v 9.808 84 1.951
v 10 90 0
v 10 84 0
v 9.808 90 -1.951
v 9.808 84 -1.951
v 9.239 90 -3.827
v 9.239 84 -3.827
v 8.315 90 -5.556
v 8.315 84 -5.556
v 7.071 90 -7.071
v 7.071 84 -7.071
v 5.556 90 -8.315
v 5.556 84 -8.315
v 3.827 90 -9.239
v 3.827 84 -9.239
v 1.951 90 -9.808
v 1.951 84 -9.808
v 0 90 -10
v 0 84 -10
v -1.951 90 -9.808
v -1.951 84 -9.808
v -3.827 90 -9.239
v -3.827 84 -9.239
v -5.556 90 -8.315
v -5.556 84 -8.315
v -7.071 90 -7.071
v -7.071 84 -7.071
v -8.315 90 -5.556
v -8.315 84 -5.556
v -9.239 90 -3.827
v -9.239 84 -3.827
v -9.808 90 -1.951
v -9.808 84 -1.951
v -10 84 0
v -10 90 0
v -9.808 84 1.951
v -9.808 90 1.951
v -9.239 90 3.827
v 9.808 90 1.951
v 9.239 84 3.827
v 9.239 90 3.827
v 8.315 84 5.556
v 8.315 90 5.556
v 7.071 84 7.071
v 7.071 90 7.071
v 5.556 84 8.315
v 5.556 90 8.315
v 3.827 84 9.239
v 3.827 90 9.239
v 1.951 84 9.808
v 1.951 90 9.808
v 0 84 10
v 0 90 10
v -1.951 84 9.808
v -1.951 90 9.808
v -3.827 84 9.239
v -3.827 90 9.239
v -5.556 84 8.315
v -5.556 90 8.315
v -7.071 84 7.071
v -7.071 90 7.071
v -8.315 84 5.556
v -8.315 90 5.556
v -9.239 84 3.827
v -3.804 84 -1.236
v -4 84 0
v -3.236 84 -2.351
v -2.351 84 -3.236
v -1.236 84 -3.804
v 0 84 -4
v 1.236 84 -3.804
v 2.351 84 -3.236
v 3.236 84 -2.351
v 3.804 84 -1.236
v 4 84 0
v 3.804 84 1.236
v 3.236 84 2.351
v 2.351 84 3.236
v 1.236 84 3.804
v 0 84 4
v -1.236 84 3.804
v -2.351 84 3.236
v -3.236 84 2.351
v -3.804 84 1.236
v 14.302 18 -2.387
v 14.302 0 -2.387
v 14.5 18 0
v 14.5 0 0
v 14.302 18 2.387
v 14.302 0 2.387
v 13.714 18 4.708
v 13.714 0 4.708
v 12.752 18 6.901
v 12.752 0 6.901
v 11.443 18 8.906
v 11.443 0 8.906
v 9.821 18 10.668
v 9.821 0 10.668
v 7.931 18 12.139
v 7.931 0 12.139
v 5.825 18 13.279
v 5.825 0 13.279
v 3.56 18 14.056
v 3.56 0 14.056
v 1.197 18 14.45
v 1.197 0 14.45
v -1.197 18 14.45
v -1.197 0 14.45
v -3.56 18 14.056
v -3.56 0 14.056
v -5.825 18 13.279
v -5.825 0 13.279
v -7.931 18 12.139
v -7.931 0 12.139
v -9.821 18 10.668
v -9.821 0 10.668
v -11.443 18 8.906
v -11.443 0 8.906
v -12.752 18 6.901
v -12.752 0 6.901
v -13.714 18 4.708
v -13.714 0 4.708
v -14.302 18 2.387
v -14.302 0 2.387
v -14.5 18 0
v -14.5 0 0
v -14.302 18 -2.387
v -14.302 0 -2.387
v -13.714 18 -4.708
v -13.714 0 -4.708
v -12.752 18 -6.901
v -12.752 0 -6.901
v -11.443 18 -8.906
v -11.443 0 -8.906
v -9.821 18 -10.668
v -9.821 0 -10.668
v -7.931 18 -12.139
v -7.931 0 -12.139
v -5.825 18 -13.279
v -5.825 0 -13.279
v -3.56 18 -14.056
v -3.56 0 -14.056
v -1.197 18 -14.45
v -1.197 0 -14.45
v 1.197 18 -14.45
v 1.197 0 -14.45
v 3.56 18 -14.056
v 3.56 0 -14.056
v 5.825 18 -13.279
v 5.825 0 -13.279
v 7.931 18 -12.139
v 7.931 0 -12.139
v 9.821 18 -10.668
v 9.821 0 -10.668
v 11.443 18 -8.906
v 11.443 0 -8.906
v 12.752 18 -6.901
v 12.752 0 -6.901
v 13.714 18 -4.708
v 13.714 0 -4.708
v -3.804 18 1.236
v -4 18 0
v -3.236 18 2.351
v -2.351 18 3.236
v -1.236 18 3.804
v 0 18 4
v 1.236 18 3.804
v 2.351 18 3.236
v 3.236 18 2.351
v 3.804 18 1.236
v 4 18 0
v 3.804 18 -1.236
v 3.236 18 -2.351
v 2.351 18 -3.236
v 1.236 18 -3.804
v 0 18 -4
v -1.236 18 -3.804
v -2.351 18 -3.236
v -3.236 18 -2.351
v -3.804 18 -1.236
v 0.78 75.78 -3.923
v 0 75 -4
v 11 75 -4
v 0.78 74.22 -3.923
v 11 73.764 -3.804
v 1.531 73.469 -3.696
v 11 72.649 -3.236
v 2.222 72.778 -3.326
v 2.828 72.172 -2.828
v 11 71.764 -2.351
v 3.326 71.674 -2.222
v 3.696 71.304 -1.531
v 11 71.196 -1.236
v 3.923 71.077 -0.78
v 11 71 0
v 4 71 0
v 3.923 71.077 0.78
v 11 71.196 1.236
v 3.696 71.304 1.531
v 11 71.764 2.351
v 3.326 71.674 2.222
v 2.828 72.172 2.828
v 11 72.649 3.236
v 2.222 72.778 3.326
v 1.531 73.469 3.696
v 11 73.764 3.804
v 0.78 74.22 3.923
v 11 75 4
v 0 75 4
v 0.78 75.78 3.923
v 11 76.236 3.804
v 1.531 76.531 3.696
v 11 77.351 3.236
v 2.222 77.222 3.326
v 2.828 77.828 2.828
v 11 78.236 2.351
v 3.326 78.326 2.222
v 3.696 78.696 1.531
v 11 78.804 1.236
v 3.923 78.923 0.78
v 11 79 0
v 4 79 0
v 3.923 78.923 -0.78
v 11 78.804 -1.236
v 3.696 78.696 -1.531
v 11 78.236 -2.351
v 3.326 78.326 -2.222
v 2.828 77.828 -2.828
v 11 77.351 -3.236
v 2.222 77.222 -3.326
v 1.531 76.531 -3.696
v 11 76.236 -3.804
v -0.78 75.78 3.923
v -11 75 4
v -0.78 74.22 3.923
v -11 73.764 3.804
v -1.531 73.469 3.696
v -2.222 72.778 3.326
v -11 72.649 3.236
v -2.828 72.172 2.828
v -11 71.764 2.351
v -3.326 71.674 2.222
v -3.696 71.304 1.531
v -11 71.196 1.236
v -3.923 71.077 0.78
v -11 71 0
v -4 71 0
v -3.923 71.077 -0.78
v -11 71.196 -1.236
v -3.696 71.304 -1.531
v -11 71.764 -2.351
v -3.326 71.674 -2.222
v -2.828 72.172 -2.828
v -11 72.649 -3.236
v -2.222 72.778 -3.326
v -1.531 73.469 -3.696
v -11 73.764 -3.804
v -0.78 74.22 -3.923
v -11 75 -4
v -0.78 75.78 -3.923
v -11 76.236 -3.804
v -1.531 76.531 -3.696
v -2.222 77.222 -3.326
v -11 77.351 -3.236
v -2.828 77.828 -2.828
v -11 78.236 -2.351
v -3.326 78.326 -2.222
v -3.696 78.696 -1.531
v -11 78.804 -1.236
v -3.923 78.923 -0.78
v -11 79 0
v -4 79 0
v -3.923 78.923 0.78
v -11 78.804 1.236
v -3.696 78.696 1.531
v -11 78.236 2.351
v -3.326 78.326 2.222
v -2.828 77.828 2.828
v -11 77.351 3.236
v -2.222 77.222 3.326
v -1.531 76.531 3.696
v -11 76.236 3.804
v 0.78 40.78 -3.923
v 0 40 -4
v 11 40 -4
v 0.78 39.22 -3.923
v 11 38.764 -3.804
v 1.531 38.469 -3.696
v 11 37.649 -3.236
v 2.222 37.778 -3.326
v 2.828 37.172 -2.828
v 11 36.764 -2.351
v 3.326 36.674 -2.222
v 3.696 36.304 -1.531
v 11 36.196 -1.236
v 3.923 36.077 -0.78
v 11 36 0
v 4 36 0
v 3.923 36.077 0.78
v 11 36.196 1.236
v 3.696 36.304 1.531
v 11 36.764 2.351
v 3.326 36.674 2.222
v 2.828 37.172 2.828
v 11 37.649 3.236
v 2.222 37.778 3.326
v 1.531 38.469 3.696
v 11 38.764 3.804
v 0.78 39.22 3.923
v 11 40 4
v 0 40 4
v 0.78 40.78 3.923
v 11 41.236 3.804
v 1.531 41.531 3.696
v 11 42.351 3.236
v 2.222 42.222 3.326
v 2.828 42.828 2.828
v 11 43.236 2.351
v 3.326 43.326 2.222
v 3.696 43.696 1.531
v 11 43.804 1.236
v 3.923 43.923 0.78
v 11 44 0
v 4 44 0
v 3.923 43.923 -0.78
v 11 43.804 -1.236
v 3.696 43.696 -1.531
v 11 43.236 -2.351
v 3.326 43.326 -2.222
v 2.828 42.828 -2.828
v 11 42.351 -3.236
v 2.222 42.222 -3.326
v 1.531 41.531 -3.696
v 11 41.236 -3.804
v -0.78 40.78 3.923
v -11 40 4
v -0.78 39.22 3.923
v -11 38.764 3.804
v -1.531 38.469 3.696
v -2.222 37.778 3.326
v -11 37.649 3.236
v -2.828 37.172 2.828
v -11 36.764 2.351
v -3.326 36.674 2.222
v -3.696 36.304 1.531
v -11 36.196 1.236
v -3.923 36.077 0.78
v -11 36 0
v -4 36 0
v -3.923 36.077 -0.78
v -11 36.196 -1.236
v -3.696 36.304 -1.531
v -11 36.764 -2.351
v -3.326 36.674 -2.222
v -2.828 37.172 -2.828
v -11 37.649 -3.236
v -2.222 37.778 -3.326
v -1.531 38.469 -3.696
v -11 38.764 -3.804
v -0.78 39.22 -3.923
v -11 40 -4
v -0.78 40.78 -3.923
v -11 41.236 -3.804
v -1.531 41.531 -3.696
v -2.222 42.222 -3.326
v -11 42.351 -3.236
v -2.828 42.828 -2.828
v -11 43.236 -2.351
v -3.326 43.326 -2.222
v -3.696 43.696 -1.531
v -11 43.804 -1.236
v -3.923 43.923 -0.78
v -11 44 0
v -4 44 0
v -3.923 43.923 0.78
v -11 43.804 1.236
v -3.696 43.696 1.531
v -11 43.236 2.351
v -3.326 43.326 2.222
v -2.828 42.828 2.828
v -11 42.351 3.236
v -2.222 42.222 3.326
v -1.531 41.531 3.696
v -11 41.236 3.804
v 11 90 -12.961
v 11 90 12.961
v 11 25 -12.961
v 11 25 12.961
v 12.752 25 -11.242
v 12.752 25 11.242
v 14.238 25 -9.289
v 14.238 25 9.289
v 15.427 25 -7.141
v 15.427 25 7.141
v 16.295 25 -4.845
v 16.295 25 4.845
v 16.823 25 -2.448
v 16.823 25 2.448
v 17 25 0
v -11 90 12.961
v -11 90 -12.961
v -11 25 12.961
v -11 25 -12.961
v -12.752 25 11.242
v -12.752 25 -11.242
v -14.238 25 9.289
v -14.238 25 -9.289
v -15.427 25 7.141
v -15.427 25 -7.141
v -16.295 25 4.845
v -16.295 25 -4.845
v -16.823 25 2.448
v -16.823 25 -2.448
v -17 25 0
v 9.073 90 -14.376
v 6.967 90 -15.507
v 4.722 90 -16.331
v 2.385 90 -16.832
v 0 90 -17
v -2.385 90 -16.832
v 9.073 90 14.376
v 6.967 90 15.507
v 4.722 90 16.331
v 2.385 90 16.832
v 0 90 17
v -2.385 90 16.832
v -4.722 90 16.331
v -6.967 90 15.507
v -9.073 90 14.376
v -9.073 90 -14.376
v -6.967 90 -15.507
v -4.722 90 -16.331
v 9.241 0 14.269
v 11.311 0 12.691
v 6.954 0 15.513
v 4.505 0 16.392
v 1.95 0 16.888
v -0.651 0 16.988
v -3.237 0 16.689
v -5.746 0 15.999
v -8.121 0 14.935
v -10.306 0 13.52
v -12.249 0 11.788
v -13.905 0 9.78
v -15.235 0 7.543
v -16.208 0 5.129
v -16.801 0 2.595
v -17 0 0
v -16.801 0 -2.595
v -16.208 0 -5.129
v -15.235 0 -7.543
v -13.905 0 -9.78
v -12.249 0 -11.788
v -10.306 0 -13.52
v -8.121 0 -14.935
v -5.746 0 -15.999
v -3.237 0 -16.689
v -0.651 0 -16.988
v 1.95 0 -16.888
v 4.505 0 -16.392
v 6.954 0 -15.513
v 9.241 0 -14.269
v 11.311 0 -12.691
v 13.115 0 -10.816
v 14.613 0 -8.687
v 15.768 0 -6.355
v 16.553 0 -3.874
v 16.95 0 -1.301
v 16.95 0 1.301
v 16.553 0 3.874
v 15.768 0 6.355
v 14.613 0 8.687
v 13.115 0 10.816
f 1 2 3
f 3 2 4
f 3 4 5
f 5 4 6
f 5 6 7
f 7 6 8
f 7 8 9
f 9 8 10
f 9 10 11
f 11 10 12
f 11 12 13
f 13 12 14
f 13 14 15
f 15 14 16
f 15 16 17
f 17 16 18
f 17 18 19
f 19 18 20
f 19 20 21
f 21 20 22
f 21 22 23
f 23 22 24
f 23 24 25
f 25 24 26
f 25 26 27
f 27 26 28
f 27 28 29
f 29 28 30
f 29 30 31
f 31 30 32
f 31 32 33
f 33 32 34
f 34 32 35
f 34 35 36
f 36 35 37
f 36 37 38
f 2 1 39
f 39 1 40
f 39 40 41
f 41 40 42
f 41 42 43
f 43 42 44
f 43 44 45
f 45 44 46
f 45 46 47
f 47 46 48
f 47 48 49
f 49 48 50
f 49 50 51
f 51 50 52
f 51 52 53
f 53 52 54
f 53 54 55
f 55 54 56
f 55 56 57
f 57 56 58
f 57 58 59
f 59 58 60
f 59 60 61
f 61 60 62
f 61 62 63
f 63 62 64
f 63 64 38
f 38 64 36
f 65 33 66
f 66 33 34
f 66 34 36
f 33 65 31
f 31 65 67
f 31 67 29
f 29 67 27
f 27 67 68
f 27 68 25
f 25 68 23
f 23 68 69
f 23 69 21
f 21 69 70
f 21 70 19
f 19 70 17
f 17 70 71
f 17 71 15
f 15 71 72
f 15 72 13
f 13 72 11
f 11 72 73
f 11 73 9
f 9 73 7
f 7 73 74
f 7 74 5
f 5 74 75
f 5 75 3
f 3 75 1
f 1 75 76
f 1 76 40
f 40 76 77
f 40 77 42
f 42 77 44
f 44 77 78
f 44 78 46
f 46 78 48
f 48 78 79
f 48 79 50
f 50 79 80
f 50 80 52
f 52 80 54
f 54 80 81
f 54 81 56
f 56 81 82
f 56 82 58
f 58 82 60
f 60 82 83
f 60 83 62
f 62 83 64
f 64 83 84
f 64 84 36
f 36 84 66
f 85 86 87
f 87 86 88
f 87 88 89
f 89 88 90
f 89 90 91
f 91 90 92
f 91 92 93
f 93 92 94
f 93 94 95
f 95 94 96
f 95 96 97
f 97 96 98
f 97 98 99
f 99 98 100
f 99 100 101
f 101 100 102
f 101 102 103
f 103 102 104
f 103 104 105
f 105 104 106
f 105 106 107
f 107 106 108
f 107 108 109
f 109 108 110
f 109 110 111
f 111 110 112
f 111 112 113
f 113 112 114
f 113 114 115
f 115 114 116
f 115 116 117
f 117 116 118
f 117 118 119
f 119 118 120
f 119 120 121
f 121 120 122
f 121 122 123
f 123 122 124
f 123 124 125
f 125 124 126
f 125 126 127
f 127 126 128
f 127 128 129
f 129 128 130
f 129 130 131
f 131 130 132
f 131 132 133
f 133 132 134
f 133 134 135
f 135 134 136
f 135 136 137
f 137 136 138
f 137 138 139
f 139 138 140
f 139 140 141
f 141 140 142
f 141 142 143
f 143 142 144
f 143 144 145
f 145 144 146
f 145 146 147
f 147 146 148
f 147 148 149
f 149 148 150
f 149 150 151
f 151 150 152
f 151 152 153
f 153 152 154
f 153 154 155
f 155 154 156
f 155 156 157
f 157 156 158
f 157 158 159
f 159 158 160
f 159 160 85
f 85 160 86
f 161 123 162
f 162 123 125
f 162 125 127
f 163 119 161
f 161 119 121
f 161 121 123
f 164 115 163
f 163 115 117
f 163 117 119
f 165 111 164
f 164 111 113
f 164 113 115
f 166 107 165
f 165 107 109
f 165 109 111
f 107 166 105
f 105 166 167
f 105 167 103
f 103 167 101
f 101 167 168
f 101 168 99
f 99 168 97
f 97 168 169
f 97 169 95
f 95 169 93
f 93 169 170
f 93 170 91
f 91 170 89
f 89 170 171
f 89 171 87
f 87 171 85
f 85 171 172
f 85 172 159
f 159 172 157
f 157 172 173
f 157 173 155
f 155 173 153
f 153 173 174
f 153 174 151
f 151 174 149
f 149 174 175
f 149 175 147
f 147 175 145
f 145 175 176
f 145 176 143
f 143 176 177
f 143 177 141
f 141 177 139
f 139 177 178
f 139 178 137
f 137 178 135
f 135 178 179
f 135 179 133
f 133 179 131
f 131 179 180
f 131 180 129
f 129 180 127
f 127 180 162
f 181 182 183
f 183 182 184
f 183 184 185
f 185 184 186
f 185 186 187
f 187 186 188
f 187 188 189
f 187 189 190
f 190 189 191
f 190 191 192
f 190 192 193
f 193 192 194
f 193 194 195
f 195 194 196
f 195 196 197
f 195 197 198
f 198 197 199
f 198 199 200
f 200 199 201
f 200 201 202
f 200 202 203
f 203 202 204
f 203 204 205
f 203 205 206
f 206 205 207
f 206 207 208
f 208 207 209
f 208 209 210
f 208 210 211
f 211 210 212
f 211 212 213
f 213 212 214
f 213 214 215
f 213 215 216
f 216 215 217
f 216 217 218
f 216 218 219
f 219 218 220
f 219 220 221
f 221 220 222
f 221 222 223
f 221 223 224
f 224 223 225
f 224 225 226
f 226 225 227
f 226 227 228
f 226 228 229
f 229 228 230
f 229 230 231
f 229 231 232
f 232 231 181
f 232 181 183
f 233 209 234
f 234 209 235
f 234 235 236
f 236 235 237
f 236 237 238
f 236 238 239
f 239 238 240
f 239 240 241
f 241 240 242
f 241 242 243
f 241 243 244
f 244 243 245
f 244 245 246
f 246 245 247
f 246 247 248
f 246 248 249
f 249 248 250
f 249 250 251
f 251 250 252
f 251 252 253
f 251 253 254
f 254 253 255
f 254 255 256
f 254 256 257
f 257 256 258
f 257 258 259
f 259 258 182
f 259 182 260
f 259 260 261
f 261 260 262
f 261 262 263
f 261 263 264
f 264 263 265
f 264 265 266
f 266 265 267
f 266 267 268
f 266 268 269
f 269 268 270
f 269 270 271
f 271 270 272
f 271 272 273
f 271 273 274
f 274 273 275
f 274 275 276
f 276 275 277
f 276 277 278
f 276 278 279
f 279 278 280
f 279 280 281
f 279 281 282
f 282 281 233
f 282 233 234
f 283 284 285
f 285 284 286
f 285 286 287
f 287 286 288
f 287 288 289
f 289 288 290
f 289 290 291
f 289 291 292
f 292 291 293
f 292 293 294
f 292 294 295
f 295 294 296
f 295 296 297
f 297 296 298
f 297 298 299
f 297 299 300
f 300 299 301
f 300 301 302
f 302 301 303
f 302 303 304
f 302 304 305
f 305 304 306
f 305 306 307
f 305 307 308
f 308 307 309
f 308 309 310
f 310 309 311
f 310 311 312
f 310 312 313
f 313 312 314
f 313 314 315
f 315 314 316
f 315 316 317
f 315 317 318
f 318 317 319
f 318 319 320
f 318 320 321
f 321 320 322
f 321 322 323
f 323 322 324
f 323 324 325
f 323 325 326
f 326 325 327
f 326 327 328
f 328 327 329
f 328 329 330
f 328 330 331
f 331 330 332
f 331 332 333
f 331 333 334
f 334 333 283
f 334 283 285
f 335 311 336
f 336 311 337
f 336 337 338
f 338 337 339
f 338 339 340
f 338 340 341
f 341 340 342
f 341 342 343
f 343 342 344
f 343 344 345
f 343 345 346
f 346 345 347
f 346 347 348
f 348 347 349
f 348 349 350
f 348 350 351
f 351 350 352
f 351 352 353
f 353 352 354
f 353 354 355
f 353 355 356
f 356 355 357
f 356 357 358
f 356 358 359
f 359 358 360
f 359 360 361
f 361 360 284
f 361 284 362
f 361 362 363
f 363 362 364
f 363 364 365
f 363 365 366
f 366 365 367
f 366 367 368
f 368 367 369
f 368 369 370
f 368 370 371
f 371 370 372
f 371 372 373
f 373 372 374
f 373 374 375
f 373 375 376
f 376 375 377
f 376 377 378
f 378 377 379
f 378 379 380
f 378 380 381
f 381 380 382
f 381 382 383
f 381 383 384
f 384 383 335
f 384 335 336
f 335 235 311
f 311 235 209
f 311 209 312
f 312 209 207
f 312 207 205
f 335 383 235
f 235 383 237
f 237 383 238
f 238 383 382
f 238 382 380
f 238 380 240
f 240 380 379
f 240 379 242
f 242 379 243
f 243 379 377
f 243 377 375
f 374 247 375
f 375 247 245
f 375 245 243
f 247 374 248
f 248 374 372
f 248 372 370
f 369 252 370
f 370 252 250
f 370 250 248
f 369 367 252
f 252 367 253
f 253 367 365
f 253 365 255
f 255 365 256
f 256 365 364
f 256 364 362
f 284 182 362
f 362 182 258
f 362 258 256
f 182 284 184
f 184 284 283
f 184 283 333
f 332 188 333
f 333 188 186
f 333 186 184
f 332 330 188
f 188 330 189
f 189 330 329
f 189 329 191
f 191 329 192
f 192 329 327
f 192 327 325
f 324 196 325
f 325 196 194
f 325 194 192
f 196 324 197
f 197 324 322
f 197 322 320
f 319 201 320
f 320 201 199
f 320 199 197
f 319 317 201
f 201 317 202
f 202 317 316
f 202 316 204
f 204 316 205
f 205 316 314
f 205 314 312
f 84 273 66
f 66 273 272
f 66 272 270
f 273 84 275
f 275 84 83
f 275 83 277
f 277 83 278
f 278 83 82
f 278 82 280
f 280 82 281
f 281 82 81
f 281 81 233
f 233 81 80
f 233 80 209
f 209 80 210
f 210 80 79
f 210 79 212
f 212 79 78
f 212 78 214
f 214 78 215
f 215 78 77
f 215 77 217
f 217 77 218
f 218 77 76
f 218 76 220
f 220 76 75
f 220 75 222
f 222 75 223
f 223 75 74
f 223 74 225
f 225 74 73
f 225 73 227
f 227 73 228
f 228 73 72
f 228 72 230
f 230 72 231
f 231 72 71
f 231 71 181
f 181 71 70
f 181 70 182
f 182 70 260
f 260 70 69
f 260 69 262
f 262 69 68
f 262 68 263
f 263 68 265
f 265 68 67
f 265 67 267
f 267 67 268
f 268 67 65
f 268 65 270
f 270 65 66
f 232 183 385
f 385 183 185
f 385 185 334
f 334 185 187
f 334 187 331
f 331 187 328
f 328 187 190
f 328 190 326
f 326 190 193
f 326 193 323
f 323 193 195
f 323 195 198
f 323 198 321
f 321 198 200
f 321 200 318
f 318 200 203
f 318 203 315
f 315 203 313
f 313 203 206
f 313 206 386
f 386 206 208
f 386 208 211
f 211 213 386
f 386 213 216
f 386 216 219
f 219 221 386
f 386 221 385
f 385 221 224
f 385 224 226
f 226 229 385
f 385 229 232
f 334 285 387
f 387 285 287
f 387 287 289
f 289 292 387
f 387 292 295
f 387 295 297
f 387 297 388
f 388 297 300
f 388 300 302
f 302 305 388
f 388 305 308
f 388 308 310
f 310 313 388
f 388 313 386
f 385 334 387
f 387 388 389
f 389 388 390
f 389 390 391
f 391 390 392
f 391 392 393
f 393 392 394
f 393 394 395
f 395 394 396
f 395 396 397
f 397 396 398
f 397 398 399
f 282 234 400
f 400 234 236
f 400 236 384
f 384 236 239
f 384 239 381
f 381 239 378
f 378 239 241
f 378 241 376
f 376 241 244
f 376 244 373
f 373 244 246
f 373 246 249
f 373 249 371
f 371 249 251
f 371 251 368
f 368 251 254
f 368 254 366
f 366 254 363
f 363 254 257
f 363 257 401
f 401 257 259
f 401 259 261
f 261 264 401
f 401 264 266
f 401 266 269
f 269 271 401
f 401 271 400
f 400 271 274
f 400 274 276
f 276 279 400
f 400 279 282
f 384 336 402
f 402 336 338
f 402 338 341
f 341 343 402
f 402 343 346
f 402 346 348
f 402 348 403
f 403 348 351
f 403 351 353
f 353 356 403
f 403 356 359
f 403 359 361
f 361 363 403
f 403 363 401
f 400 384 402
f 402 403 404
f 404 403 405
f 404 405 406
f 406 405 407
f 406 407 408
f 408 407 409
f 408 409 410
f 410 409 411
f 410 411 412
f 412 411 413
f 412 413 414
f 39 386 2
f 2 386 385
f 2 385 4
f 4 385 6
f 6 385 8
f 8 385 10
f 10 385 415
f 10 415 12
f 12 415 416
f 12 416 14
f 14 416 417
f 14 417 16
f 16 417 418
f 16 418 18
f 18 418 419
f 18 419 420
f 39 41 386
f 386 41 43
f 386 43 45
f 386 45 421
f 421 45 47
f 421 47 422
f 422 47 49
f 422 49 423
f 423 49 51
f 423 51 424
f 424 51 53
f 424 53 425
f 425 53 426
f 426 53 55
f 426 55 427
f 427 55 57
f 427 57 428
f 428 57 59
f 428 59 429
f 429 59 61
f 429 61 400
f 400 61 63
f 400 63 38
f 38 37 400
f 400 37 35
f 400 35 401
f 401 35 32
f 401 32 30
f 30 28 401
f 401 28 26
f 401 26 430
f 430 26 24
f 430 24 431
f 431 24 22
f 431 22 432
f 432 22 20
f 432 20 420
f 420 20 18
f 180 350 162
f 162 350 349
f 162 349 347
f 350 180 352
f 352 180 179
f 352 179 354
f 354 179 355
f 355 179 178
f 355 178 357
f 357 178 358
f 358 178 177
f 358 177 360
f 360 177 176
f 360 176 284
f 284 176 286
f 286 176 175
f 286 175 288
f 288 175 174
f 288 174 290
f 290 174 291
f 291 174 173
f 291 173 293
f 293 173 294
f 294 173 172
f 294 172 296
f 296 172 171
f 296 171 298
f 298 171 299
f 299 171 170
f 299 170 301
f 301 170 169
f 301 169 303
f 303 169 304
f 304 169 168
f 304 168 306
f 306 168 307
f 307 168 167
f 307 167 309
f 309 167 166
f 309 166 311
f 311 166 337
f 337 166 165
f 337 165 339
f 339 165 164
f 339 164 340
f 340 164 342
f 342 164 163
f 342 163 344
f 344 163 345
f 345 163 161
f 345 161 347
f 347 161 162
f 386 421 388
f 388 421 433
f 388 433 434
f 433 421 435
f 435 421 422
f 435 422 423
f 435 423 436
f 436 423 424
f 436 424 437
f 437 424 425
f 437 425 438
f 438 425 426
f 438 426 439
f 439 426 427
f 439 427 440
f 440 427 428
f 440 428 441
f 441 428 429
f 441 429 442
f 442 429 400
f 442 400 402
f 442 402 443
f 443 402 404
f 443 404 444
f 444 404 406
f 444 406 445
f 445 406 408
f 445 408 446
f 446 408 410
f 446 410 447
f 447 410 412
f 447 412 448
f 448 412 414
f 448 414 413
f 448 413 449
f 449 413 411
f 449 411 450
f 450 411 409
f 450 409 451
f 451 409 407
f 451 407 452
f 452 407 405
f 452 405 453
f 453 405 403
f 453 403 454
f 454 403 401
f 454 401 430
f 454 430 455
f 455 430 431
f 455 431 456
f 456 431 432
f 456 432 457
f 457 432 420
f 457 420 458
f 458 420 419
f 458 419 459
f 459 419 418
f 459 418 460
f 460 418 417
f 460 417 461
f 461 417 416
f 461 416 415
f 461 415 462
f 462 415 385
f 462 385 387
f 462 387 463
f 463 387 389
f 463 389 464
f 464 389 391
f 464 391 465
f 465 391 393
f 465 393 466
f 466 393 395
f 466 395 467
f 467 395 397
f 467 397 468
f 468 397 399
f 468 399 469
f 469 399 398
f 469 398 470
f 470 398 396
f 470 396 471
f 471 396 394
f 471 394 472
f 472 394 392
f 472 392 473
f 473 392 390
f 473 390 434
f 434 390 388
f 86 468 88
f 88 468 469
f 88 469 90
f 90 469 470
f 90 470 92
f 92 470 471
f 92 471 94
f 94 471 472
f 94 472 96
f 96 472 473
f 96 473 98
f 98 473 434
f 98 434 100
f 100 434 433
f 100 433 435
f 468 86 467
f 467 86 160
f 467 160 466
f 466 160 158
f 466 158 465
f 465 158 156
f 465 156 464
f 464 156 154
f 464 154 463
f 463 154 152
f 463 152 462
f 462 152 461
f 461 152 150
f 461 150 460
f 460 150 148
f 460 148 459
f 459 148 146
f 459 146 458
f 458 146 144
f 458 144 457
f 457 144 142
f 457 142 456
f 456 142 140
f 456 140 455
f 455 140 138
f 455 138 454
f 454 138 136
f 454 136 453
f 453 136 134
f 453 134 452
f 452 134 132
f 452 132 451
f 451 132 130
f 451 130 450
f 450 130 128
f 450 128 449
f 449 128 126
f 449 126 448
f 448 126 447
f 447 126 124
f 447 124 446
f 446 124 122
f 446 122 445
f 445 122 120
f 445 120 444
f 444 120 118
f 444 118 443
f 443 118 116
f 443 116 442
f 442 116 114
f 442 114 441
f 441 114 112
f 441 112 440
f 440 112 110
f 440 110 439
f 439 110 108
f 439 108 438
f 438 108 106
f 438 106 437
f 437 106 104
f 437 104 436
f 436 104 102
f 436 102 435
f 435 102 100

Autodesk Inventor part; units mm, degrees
ref_plane "YZ Plane" through (0, 0, 0) normal (1, 0, 0) x (0, 1, 0)
ref_plane "XZ Plane" through (0, 0, 0) normal (0, 1, 0) x (-1, 0, 0)
ref_plane "XY Plane" through (0, 0, 0) normal (0, 0, 1) x (1, 0, 0)
sketch "Sketch1" plane through (0, 0, 0) normal (0, 1, 0) x (-1, 0, 0)
  circle A0 centre (0, 0) radius 4
  circle A1 centre (0, 0) radius 17
  dimension "d0" = 8
  dimension "d1" = 34
extrude "Extrusion1" add sketch "Sketch1" along normal blind 90
sketch "Sketch3" plane through (0, 90, 0) normal (0, 1, 0) x (1, 0, 0)
  line L0 (11, 24.9102) -> (-11, 24.9102)
  line L1 (-11, 24.9102) -> (-11, -24.9102)
  line L2 (-11, -24.9102) -> (11, -24.9102)
  line L3 (11, -24.9102) -> (11, 24.9102)
  line L4 (11, 24.9102) -> (-11, -24.9102) construction
  line L5 (-11, 24.9102) -> (11, -24.9102) construction
  circle A0 centre (0, 0) radius 17
  circle A1 centre (0, 0) radius 17 projected
  point P0 (11, 12.9615)
  point P1 (11, -12.9615)
  point P2 (-11, -12.9615)
  point P3 (-11, 12.9615)
  dimension "d7" = 22
extrude "Extrusion3" cut sketch "Sketch3" against normal blind 65 contours A0 L3 | L1 A0
sketch "Sketch4" plane through (-11, 90, -12.9615) normal (-1, 0, 0) x (0, 0, 1)
  circle A0 centre (12.9615, -50) radius 4
  circle A1 centre (12.9615, -15) radius 4
  line L0 (0, 0) -> (25.923, 0) projected
  line L1 (29.9615, -90) -> (-4.0385, -90) projected
  line L2 (0, -65) -> (25.923, -65) projected
  line L3 (25.923, 0) -> (25.923, -65) projected
  line L4 (0, 0) -> (25.923, 0) projected
  line L5 (0, -65) -> (0, 0) projected
  line L6 (0, -65) -> (25.923, -65) projected
  line L7 (25.923, 0) -> (25.923, -65) projected
  line L8 (12.9615, -65) -> (12.9615, -59.6994)
  point P0 (0.995, 0)
  point P1 (15.5881, 0)
  dimension "d12" = 15
  dimension "d15" = 8
  dimension "d17" = 15
extrude "Extrusion4" cut sketch "Sketch4" against normal through all contours A0 | A1
sketch "Sketch5" plane through (0, 0, 0) normal (0, -1, 0) x (1, 0, 0)
  circle A0 centre (0, 0) radius 14.5
  dimension "d18" = 29
extrude "Extrusion5" cut sketch "Sketch5" against normal blind 18
thread "Thread1" size "M8x1.25" class "6H" standard "ANSI Metric M Profile" full length
thread "Thread2" size "M8x1.25" class "6H" standard "ANSI Metric M Profile" full length
thread "Thread3" size "M8x1.25" class "6H" standard "ANSI Metric M Profile" full length
thread "Thread4" size "M8x1.25" class "6H" standard "ANSI Metric M Profile" full length
sketch "Sketch6" plane through (0, 90, 0) normal (0, 1, 0) x (1, 0, 0)
  circle A0 centre (0, 0) radius 10
  dimension "d29" = 20
extrude "Extrusion6" cut sketch "Sketch6" against normal blind 6
equation "\"d12\" = d11"
equation "\"d11\" = 15"
properties part number "Drum" material "Aluminum 6061"
